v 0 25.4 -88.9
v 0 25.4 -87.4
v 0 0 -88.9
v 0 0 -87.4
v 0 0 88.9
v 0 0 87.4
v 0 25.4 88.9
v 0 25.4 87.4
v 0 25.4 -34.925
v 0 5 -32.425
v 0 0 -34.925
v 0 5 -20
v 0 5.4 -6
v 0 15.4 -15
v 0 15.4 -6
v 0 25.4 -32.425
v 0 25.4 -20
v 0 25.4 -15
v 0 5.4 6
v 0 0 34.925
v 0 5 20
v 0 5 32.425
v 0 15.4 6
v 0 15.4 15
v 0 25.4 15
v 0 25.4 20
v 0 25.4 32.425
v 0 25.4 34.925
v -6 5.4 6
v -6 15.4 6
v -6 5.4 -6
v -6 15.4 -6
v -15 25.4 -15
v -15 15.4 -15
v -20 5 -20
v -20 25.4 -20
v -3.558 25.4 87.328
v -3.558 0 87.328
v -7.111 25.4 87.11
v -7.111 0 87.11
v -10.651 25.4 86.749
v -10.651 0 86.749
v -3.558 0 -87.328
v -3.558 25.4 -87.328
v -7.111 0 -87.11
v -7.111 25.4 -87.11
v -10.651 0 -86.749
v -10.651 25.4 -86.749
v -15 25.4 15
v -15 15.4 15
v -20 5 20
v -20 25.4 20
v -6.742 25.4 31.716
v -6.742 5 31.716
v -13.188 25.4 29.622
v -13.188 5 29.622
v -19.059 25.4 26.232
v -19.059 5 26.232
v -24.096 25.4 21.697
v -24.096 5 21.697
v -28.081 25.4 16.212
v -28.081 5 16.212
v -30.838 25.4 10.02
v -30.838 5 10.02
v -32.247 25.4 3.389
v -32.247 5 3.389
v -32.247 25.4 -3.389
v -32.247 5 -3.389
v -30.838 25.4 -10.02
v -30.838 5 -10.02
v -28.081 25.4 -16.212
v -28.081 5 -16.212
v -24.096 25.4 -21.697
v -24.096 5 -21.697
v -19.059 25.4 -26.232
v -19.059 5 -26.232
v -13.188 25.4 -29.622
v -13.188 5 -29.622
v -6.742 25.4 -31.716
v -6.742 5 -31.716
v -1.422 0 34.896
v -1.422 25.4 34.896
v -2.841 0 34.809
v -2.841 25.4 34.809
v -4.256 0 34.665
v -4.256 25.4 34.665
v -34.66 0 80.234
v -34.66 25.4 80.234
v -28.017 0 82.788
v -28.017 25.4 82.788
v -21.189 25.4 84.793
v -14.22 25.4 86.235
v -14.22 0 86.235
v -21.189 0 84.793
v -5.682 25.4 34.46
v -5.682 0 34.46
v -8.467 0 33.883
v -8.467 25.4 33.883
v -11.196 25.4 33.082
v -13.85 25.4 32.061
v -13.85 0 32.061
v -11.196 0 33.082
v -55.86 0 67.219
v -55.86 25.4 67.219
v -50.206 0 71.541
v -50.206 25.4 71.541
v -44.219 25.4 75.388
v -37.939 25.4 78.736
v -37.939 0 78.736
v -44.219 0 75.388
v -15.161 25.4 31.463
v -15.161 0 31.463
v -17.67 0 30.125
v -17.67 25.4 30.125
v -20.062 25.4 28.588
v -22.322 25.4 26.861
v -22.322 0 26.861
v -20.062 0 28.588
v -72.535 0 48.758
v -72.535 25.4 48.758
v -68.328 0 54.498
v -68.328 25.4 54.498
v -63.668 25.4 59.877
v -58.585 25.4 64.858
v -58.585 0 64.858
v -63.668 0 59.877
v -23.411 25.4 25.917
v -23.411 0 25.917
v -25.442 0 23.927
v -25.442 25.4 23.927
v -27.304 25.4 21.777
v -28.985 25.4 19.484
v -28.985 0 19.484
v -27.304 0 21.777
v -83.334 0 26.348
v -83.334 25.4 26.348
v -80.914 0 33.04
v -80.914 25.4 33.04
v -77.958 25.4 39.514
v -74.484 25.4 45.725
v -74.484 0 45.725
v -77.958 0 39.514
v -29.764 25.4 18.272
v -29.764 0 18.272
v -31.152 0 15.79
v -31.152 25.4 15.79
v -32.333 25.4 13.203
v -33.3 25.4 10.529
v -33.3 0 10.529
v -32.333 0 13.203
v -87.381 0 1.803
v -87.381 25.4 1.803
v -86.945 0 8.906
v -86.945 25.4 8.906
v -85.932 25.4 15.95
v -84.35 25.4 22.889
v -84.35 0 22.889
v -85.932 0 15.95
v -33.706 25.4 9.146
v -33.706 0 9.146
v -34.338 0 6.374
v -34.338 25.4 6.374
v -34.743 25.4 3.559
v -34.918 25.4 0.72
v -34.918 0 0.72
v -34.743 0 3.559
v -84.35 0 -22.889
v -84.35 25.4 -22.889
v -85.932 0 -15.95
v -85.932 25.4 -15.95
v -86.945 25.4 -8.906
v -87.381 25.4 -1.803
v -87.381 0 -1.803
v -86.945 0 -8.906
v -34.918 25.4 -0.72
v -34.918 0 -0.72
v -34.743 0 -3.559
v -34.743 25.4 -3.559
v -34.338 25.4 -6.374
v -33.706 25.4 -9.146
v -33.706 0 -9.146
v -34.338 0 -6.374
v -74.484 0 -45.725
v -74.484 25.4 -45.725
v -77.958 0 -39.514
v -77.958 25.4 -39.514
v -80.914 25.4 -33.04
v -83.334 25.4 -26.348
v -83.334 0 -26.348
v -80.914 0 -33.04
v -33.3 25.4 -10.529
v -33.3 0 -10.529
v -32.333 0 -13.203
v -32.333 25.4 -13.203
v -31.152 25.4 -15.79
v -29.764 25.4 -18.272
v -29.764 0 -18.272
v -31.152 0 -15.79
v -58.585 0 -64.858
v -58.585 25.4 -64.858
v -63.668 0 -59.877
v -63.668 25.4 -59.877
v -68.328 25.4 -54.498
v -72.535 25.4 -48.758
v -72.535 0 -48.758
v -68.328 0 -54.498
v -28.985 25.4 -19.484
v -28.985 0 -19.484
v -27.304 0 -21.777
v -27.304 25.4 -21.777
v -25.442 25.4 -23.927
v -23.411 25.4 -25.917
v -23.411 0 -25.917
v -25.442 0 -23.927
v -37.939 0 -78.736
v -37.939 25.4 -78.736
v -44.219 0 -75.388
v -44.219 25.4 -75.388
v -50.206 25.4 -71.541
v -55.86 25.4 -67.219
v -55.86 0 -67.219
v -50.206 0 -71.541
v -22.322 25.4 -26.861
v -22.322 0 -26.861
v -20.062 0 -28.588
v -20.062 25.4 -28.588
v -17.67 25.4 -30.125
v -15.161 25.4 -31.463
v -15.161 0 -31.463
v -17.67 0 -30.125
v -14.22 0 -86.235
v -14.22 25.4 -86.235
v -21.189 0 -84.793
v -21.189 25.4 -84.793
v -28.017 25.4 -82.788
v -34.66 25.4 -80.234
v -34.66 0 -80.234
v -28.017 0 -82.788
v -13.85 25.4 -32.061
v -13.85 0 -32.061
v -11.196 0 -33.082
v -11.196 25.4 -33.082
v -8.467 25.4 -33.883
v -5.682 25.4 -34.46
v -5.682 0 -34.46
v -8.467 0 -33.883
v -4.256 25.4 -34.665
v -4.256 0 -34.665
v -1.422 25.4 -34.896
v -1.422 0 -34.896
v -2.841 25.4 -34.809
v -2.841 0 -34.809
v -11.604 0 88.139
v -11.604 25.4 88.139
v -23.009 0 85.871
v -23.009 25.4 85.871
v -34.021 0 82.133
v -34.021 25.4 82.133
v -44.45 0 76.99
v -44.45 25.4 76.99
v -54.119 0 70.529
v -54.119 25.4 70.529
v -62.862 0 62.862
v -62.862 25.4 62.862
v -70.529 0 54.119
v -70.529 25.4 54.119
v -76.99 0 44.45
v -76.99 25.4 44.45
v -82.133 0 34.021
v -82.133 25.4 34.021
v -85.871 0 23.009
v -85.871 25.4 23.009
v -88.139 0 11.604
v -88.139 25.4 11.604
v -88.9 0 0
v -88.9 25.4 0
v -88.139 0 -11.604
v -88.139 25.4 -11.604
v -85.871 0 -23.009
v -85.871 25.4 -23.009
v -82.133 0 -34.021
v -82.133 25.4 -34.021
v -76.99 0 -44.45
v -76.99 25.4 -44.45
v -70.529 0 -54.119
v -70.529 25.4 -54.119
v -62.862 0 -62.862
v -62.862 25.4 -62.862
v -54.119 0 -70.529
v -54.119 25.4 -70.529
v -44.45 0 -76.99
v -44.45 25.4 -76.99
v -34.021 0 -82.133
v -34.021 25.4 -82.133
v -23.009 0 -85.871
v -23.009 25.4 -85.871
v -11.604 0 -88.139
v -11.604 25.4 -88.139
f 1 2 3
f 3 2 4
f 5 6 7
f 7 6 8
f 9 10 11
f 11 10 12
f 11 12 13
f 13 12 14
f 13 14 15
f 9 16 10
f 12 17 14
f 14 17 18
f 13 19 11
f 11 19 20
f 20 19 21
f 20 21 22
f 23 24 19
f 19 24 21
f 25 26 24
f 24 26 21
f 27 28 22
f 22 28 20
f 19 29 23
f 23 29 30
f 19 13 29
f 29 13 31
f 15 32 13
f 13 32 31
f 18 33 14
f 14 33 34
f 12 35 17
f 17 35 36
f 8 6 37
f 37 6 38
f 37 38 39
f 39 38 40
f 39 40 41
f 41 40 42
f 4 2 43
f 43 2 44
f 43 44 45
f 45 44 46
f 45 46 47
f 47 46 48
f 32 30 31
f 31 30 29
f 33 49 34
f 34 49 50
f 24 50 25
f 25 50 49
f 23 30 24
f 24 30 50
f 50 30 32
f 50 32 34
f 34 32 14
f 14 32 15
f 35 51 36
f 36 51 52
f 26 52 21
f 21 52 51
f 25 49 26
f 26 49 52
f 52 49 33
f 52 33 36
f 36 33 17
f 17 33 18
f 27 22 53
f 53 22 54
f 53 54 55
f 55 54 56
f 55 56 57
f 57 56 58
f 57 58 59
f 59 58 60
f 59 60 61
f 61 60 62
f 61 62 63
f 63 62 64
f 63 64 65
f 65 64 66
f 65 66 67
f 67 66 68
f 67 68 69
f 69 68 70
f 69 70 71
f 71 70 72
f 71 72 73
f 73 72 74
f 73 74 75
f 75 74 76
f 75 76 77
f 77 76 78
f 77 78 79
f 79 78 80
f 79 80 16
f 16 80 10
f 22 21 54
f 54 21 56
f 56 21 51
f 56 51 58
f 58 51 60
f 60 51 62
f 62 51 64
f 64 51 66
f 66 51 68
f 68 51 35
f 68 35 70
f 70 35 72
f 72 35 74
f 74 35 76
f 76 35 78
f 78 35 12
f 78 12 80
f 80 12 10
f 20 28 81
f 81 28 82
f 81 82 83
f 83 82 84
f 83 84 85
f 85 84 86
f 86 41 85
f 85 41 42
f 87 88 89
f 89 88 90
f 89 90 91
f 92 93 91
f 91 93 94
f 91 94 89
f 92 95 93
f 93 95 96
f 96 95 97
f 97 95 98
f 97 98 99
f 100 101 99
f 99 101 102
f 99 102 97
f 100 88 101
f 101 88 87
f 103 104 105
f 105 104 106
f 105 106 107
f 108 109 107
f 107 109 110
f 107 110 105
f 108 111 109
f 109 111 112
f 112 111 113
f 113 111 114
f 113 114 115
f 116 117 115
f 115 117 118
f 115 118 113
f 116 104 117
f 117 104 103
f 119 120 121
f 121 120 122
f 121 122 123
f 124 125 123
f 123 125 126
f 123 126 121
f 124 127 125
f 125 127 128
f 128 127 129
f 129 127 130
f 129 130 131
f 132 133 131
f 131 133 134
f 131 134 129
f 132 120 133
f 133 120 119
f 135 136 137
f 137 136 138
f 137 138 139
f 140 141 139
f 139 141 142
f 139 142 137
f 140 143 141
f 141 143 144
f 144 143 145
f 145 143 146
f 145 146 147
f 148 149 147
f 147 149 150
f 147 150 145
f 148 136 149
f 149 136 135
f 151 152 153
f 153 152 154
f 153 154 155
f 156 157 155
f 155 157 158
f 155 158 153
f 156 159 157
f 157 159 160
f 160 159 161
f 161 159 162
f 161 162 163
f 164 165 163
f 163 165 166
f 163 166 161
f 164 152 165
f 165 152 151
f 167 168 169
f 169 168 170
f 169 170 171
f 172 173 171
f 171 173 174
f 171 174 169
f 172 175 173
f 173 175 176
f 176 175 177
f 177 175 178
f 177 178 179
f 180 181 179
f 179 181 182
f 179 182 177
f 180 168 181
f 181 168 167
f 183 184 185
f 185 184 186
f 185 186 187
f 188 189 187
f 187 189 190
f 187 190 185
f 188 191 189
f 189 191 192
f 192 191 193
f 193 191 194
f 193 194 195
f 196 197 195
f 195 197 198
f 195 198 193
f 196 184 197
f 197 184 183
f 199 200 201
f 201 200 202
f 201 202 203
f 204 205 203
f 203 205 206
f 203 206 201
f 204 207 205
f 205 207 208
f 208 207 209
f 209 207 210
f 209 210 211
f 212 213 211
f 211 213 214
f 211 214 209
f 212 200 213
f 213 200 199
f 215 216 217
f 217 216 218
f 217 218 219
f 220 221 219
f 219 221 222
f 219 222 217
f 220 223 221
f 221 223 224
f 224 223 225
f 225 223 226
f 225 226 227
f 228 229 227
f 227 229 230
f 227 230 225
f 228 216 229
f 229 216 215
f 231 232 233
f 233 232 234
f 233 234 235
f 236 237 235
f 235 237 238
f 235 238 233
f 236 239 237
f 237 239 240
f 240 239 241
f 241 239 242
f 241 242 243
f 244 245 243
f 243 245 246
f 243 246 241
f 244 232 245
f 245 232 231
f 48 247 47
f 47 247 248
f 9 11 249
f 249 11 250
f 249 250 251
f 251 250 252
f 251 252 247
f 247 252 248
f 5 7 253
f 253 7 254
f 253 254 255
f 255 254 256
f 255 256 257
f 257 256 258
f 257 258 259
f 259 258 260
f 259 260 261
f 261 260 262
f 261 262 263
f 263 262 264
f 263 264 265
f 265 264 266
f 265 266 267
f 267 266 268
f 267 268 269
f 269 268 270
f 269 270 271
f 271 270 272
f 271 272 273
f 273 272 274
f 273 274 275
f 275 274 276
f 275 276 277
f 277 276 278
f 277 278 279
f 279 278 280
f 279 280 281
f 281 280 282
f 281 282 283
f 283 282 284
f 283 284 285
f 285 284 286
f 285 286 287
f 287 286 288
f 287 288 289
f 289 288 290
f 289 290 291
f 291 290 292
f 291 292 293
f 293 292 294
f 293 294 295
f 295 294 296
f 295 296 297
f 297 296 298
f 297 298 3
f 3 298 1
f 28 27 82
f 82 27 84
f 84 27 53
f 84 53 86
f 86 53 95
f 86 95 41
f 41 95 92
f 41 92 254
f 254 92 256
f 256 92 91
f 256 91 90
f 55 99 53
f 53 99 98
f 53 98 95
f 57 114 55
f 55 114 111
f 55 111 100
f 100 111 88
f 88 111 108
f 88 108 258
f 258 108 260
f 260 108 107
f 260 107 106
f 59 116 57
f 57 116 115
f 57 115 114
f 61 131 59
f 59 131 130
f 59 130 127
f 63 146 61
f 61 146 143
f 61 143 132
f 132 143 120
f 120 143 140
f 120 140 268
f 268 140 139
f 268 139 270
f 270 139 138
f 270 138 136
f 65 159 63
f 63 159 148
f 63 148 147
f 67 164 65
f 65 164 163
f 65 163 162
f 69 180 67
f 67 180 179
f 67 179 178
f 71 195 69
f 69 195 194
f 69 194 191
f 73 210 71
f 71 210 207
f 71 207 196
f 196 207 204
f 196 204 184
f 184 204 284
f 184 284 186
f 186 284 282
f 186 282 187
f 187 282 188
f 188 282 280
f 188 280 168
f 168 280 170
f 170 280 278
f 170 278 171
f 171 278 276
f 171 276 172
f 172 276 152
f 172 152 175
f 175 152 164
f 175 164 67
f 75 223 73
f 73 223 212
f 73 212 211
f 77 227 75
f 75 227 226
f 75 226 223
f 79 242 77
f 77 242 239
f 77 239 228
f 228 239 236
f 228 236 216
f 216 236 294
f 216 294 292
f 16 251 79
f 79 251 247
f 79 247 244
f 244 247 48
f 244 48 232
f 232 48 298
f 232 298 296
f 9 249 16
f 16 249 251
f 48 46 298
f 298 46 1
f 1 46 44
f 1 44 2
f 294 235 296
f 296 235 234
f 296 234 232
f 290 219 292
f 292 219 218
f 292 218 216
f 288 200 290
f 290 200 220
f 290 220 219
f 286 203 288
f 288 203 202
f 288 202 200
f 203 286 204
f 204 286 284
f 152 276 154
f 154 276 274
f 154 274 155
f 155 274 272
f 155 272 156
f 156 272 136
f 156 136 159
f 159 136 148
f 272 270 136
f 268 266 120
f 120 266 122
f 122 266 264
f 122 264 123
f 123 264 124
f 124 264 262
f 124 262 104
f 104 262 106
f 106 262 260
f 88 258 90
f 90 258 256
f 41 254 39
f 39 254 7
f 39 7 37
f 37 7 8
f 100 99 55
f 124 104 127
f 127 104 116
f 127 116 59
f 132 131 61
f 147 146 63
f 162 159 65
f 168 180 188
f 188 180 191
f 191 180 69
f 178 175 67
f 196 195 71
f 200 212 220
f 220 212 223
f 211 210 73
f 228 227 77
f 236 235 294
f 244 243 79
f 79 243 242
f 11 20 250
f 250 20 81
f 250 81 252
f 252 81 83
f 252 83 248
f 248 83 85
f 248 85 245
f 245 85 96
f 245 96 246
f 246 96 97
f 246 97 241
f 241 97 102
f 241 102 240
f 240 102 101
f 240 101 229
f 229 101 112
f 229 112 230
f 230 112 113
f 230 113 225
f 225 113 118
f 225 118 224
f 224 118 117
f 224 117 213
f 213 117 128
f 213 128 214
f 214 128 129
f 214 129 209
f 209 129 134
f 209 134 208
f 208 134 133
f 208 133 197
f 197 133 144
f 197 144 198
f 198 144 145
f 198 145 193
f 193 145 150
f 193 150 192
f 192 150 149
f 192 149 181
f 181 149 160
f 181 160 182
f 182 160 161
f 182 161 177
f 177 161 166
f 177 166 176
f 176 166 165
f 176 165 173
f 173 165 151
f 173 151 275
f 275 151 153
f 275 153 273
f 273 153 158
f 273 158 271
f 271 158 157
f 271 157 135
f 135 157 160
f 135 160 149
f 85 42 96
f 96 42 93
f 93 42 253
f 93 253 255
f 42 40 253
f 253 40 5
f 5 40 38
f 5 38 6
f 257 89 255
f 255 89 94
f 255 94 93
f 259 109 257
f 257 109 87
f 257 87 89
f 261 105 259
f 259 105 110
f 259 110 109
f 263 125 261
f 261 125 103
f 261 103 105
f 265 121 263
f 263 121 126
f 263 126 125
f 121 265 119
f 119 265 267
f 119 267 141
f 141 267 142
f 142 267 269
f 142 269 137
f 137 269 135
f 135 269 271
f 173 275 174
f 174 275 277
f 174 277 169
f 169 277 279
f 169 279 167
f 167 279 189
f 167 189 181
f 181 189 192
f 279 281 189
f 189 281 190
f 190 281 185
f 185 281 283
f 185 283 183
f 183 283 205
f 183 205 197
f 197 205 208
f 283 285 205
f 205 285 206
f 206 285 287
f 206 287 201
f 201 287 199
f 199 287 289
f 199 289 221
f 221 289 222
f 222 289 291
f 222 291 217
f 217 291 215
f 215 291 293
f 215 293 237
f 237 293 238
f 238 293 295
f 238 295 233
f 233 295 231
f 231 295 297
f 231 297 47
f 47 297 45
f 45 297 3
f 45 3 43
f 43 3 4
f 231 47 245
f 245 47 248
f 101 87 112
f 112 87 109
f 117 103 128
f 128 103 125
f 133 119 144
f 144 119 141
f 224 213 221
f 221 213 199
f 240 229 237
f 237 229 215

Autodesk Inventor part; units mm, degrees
sketch "Sketch1" plane through (0, 0, 0) normal (0, 1, 0) x (-1, 0, 0)
  circle A0 centre (0, 0) radius 88.9
  dimension "d0" = 177.8
extrude "Extrusion1" add sketch "Sketch1" along normal blind 25.4
sketch "Sketch2" plane through (0, 25.4, 0) normal (0, 1, 0) x (1, 0, 0)
  circle A0 centre (0, 0) radius 87.4
  line L0 (0, 0) -> (-10.8342, 88.2374)
  circle A1 centre (0, 0) radius 88.9 projected
  line L1 (0, 0) -> (10.8342, 88.2374)
  circle A2 centre (0, 0) radius 34.925
  line L2 (0, 0) -> (0, 88.9)
  point P0 (-4.2563, 34.6647)
  point P1 (4.2563, 34.6647)
  point P2 (10.6514, 86.7485)
  point P3 (-10.6514, 86.7485)
  dimension "d3" = 174.8
  dimension "d4" = 69.85
  dimension "d10" = 14
  dimension "d11" = 7
extrude "Extrusion2" cut sketch "Sketch2" against normal blind 25.4 contours L1 A2 L2 A0 | A0 L2 A2 L0
pattern_circular "Circular Pattern1" count 22 over 360 about axis through (0, 0, 0) along (0, 1, 0) of "Extrusion2"
sketch "Sketch4" plane through (0, 25.4, 0) normal (0, 1, 0) x (1, 0, 0)
  circle A0 centre (0, 0) radius 32.425
  dimension "d16" = 64.85
extrude "Extrusion3" cut sketch "Sketch4" against normal blind 20.4
ref_plane "Work Plane1" through (0, 5, 0) normal (0, 1, 0) x (1, 0, 0)
sketch "Sketch5" plane through (0, 5, 0) normal (0, 1, 0) x (1, 0, 0)
  line L0 (-20, 20) -> (20, 20)
  line L1 (20, 20) -> (20, -20)
  line L2 (20, -20) -> (-20, -20)
  line L3 (-20, -20) -> (-20, 20)
  point P0 (0, 0)
  dimension "d20" = 40
  dimension "d21" = 40
  dimension "d22" = 20
  dimension "d23" = 20
extrude "Extrusion4" add sketch "Sketch5" along normal blind 20.4
ref_plane "Work Plane2" through (0, 25.4, 0) normal (0, 1, 0) x (1, 0, 0)
sketch "Sketch6" plane through (0, 25.4, 0) normal (0, 1, 0) x (1, 0, 0)
  line L0 (-15, 15) -> (15, 15)
  line L1 (15, 15) -> (15, -15)
  line L2 (15, -15) -> (-15, -15)
  line L3 (-15, -15) -> (-15, 15)
  point P0 (0, 0)
  dimension "d26" = 30
  dimension "d27" = 15
  dimension "d28" = 15
  dimension "d29" = 30
extrude "Extrusion5" cut sketch "Sketch6" against normal blind 10
ref_plane "Work Plane3" through (0, 15.4, 0) normal (0, 1, 0) x (1, 0, 0)
sketch "Sketch7" plane through (0, 15.4, 0) normal (0, 1, 0) x (1, 0, 0)
  line L0 (-6, 6) -> (6, 6)
  line L1 (6, 6) -> (6, -6)
  line L2 (6, -6) -> (-6, -6)
  line L3 (-6, -6) -> (-6, 6)
  line L4 (-15, 15) -> (15, 15) projected
  line L5 (15, 15) -> (15, -15) projected
  line L6 (-15, -15) -> (-15, 15) projected
  line L7 (15, -15) -> (-15, -15) projected
  point P0 (0, 0)
  dimension "d32" = 9
  dimension "d33" = 9
  dimension "d34" = 9
  dimension "d35" = 9
extrude "Extrusion6" cut sketch "Sketch7" against normal blind 10 contours L0 L1 L2 L3
sketch "Sketch16" plane through (0, 0, 0) normal (0, -1, 0) x (1, 0, 0)
  point P0 (0, 0)
ref_plane "Work Plane6" through (0, 25.4, 0) normal (-1, 0, 0) x (0, 0, -1)
sketch "Sketch18" plane through (0, 25.4, 0) normal (-1, 0, 0) x (0, 0, -1)
  line L0 (-99.4236, -8.2024) -> (109.702, -8.2024)
  line L1 (109.702, -8.2024) -> (109.702, 39.2363)
  line L2 (109.702, 39.2363) -> (-99.4236, 39.2363)
  line L3 (-99.4236, 39.2363) -> (-99.4236, -8.2024)
  point P0 (0, 25.4)
extrude "Extrusion7" cut sketch "Sketch18" against normal blind 127
equation "\"d11\" = 0.5 * d10"
equation "\"d21\" = d20"
equation "\"d22\" = 0.5 * d20"
equation "\"d23\" = 0.5 * d20"
equation "\"d27\" = 0.5 * d26"
equation "\"d28\" = 0.5 * d26"
equation "\"d29\" = d26"
equation "\"d33\" = d32"
equation "\"d34\" = d32"
equation "\"d35\" = d32"
properties part number "Capsule_Design_Final"
